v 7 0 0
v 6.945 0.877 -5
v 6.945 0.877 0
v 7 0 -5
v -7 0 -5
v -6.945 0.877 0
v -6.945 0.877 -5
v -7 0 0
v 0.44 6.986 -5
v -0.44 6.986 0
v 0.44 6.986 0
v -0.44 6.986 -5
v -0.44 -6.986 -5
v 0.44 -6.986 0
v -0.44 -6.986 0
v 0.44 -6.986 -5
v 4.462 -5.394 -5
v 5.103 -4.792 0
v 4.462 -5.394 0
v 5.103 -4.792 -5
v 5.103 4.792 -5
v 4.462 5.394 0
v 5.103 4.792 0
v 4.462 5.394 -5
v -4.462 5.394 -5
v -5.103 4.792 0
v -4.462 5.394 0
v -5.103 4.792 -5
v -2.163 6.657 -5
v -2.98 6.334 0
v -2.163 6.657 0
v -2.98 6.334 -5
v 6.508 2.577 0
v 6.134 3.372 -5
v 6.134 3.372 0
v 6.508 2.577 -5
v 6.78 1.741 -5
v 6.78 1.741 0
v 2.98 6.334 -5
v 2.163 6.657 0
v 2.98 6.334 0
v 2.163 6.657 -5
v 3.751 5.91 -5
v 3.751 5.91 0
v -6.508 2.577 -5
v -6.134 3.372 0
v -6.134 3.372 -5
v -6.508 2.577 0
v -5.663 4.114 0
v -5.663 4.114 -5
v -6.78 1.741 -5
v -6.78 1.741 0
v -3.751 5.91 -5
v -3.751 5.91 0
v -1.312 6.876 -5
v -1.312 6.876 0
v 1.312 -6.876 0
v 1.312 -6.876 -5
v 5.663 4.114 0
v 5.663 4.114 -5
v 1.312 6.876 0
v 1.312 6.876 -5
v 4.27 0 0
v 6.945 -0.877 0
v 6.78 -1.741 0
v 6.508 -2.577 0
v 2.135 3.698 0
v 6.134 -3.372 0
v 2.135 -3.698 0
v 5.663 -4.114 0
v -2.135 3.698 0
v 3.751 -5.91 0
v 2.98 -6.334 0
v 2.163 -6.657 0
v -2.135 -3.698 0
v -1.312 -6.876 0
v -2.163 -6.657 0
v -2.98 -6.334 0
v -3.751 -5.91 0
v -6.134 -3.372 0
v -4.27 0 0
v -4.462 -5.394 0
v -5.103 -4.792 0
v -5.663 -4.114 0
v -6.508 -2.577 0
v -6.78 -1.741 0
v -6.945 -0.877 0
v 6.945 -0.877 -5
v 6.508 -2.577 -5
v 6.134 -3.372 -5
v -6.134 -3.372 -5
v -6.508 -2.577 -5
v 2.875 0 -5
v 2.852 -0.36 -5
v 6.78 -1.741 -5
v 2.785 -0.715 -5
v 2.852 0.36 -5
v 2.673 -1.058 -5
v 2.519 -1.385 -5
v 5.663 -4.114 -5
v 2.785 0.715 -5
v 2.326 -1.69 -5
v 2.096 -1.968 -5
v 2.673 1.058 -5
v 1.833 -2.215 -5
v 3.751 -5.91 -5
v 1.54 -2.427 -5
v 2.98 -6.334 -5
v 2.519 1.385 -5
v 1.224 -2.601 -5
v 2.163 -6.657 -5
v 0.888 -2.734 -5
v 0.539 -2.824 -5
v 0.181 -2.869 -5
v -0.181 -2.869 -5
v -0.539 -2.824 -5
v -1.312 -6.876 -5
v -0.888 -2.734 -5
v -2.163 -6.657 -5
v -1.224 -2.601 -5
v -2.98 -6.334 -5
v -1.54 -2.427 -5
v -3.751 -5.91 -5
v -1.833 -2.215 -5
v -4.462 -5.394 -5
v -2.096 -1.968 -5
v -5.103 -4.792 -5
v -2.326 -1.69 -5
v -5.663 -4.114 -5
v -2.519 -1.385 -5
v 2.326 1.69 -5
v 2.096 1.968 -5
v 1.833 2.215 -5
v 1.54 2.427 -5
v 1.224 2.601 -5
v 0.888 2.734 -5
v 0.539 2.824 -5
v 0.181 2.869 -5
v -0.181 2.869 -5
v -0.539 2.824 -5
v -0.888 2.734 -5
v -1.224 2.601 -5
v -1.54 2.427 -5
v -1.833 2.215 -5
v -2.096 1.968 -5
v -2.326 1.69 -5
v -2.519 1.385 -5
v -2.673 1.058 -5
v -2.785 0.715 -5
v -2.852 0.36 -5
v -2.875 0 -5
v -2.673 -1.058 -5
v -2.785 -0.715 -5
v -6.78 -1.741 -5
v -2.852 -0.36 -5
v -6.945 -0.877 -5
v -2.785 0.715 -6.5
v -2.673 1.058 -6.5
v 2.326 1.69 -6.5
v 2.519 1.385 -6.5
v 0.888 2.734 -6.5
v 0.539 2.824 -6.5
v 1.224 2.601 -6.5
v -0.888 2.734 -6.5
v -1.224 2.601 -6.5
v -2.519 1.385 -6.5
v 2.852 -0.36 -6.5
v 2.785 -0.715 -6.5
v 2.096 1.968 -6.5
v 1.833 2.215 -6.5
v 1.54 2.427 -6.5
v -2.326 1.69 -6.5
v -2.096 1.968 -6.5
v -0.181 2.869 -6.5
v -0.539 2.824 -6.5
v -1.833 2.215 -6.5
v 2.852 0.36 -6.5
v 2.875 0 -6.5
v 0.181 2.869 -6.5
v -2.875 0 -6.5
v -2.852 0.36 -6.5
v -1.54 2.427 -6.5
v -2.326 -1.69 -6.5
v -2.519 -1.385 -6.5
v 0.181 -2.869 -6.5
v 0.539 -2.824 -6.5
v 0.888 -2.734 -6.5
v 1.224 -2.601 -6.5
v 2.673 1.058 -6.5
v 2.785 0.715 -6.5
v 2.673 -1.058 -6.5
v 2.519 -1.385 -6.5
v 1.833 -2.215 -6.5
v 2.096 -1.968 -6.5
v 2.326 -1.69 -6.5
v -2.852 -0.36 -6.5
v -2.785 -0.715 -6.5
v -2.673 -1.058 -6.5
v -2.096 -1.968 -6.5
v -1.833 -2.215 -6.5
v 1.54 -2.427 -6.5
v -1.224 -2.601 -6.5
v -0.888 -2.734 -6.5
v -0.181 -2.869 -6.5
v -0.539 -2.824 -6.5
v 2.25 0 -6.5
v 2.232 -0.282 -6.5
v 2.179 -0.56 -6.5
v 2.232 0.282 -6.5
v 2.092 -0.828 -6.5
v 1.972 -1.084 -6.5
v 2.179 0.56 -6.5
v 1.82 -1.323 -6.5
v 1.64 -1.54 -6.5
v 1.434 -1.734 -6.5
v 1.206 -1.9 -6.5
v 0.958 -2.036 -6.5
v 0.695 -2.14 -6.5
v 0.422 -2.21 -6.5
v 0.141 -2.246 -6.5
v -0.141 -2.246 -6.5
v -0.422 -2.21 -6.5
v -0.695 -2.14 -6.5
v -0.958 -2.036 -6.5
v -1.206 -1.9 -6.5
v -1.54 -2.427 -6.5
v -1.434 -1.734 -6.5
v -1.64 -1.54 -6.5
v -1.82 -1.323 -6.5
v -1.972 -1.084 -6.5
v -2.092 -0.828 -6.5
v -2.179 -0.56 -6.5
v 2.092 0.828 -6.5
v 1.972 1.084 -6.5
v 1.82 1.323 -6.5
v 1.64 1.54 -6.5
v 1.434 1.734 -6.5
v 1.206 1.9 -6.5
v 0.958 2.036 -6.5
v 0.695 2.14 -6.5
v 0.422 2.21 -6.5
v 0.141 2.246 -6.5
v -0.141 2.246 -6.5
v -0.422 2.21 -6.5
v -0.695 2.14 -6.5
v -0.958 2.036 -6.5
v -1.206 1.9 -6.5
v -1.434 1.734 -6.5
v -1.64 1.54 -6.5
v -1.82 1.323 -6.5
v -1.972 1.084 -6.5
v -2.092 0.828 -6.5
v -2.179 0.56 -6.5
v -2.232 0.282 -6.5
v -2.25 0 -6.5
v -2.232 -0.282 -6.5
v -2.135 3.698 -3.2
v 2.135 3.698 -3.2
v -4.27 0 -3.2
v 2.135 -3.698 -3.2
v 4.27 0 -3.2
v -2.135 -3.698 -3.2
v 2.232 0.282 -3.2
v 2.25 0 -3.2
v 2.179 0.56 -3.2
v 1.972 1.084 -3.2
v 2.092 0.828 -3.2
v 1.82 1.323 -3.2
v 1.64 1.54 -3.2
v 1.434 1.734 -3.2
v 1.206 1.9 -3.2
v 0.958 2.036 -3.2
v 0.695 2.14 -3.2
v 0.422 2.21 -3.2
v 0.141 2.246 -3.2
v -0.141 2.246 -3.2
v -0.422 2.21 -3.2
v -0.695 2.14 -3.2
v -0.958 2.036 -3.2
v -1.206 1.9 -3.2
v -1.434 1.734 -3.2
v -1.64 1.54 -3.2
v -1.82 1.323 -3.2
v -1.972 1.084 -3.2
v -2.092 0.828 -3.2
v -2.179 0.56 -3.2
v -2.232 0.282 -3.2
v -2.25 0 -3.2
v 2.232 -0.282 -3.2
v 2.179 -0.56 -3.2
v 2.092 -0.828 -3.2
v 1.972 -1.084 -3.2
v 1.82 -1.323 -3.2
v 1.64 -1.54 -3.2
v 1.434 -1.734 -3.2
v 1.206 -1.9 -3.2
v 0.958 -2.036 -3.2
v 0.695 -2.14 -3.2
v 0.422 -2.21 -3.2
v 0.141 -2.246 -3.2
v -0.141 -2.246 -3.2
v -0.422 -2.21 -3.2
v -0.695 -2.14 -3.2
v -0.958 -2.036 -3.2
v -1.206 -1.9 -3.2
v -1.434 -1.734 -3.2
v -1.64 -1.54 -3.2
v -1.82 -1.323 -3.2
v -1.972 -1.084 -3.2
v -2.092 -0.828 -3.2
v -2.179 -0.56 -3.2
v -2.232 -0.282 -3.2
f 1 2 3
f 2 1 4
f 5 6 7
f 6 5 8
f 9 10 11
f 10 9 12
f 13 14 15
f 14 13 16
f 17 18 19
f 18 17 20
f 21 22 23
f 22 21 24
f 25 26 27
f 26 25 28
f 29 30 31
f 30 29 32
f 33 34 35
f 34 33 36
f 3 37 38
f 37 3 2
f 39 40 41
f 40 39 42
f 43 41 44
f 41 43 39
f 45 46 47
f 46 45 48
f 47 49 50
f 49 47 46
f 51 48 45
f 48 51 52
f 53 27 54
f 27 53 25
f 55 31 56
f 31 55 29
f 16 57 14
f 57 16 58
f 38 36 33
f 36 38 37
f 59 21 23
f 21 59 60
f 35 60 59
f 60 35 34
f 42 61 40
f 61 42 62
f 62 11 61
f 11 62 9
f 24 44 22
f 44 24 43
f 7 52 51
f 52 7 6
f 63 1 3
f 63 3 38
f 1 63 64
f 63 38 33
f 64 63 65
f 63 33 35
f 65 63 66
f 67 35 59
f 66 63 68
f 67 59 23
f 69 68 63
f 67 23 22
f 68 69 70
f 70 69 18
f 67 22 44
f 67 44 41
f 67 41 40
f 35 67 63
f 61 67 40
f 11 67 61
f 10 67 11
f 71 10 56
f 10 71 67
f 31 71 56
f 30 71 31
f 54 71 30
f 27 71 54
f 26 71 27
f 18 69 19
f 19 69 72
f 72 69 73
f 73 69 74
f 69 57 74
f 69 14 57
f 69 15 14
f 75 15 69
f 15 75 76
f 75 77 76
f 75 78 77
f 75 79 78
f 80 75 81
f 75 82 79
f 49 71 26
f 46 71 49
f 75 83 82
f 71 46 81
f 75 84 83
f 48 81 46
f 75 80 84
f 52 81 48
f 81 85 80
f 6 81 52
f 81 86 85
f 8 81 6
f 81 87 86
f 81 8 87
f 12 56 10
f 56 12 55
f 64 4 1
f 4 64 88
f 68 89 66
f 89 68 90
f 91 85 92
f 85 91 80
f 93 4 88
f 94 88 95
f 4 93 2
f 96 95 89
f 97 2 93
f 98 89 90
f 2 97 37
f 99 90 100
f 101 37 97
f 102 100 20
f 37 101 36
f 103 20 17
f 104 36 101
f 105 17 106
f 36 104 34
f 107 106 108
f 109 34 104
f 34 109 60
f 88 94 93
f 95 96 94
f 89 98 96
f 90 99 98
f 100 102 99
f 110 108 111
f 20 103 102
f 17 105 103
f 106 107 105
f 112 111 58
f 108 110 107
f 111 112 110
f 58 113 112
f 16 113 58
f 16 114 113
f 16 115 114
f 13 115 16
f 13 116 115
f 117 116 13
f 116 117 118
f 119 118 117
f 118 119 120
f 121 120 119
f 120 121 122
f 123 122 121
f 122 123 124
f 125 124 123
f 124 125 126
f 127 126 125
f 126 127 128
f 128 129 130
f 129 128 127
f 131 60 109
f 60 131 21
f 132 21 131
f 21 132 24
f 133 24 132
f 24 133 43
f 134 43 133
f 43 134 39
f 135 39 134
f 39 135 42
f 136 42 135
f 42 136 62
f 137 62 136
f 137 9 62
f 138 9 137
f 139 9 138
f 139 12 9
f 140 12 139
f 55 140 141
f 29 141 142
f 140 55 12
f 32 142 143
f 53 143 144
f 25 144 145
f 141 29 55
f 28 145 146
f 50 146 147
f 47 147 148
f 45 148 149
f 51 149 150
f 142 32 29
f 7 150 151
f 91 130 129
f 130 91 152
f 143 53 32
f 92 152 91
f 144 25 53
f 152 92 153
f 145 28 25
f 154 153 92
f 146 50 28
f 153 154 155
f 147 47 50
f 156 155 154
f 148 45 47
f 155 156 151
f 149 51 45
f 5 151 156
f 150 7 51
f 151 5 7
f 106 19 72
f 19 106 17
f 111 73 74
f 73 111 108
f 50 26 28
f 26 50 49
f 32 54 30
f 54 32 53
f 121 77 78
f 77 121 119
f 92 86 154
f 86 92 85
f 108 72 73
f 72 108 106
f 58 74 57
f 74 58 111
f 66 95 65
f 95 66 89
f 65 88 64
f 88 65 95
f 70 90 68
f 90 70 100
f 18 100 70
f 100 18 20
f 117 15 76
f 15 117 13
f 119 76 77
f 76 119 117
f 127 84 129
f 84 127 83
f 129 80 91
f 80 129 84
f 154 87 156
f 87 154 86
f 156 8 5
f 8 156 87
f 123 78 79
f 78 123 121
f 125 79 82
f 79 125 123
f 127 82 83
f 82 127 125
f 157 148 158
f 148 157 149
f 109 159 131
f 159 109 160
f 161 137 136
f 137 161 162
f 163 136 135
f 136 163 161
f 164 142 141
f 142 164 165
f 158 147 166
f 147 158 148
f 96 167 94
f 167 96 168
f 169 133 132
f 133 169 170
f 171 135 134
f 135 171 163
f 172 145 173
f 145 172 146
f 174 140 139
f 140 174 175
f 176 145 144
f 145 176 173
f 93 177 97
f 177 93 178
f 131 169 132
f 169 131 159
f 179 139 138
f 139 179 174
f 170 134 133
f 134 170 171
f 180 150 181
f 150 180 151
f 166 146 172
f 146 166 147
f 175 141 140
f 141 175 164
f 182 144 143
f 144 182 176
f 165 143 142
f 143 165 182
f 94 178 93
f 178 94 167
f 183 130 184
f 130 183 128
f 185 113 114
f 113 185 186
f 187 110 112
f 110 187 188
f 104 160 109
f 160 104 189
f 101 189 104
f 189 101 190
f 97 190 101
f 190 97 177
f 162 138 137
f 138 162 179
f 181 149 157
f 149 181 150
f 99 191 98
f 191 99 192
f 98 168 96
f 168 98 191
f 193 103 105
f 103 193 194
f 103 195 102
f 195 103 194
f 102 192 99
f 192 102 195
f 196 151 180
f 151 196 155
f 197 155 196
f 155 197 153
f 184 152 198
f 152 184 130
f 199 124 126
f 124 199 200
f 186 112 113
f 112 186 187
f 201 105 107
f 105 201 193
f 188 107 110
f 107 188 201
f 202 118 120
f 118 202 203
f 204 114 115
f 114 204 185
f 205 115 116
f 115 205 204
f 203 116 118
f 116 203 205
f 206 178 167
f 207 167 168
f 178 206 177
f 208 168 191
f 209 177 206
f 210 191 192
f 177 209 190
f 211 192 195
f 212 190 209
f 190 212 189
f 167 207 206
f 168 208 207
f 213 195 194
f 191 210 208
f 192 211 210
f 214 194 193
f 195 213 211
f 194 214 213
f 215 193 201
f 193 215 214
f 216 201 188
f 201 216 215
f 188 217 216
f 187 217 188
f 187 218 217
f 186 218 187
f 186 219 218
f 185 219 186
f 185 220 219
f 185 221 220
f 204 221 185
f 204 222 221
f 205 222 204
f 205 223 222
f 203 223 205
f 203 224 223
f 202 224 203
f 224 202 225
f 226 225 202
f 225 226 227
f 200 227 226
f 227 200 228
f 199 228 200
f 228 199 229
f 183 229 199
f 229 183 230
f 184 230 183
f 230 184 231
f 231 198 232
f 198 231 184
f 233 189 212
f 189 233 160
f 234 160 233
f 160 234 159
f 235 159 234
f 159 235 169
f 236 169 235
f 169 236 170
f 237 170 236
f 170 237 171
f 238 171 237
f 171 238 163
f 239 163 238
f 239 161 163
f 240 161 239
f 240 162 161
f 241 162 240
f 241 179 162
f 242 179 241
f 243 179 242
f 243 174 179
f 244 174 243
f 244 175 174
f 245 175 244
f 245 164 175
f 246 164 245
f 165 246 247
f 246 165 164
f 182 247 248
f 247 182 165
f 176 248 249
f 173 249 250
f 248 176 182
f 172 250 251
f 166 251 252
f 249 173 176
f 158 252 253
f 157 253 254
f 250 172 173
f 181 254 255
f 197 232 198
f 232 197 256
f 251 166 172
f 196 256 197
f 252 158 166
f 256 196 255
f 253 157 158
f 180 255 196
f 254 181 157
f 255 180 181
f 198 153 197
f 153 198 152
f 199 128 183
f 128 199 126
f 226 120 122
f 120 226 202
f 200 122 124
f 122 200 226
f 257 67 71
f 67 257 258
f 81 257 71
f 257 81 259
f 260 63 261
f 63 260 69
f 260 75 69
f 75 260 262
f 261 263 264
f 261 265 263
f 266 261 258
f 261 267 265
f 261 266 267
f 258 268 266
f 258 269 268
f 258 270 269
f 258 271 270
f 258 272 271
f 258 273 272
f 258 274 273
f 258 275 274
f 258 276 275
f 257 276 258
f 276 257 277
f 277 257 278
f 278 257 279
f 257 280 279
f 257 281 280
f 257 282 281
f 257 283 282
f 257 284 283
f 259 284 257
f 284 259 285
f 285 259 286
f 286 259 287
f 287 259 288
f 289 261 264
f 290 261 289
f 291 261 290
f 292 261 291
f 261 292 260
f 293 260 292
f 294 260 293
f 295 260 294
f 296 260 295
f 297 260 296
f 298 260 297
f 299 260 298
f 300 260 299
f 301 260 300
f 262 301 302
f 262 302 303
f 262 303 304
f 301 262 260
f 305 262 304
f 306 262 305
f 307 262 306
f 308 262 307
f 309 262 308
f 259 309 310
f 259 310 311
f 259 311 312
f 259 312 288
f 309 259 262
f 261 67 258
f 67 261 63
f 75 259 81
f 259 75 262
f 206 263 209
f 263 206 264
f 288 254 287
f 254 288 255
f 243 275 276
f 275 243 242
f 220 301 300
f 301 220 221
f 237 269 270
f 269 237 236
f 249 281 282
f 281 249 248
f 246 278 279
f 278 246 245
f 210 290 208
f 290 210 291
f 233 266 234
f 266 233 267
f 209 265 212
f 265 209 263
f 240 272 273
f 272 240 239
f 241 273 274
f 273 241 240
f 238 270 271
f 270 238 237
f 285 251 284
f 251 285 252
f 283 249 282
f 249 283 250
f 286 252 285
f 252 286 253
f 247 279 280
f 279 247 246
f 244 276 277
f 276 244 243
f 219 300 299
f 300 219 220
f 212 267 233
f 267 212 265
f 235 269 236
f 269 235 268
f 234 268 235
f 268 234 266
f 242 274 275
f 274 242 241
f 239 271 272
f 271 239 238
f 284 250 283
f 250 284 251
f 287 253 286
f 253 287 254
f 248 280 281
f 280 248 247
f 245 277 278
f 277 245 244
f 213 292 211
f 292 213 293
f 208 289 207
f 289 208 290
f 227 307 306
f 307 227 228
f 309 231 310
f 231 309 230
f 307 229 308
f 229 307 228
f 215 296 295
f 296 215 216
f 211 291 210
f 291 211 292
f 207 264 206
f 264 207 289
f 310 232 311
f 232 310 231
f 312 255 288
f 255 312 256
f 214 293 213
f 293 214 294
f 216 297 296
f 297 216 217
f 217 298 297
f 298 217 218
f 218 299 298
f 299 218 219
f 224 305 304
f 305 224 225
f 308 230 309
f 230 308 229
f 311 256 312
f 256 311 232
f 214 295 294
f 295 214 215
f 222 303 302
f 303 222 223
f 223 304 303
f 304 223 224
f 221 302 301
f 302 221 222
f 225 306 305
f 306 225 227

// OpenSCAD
$fn = 50;

difference() {
	union() {
		translate(v = [0, 0, -5.0]) {
			cylinder(h = 5.0, r = 7.0);
		}
		#translate(v = [0, 0, -6.5]) {
			cylinder(h = 6.5, r = 2.875);
		}
	}
	union() {
		translate(v = [0, 0, 0]) {
			rotate(a = [0, 0, 0]) {
				difference() {
					union() {
						translate(v = [0, 0, -3.2]) {
							linear_extrude(height = 3.2) {
								polygon(points = [[4.2698, 0.0], [2.1349000000000005, 3.697755269078796], [-2.134899999999999, 3.6977552690787965], [-4.2698, 5.228996902999369e-16], [-2.134900000000002, -3.6977552690787956], [2.1348999999999974, -3.697755269078798]]);
							}
						}
					}
					union();
				}
			}
		}
		#translate(v = [0, 0, -100.0]) {
			cylinder(h = 200, r = 2.25);
		}
	}
}
